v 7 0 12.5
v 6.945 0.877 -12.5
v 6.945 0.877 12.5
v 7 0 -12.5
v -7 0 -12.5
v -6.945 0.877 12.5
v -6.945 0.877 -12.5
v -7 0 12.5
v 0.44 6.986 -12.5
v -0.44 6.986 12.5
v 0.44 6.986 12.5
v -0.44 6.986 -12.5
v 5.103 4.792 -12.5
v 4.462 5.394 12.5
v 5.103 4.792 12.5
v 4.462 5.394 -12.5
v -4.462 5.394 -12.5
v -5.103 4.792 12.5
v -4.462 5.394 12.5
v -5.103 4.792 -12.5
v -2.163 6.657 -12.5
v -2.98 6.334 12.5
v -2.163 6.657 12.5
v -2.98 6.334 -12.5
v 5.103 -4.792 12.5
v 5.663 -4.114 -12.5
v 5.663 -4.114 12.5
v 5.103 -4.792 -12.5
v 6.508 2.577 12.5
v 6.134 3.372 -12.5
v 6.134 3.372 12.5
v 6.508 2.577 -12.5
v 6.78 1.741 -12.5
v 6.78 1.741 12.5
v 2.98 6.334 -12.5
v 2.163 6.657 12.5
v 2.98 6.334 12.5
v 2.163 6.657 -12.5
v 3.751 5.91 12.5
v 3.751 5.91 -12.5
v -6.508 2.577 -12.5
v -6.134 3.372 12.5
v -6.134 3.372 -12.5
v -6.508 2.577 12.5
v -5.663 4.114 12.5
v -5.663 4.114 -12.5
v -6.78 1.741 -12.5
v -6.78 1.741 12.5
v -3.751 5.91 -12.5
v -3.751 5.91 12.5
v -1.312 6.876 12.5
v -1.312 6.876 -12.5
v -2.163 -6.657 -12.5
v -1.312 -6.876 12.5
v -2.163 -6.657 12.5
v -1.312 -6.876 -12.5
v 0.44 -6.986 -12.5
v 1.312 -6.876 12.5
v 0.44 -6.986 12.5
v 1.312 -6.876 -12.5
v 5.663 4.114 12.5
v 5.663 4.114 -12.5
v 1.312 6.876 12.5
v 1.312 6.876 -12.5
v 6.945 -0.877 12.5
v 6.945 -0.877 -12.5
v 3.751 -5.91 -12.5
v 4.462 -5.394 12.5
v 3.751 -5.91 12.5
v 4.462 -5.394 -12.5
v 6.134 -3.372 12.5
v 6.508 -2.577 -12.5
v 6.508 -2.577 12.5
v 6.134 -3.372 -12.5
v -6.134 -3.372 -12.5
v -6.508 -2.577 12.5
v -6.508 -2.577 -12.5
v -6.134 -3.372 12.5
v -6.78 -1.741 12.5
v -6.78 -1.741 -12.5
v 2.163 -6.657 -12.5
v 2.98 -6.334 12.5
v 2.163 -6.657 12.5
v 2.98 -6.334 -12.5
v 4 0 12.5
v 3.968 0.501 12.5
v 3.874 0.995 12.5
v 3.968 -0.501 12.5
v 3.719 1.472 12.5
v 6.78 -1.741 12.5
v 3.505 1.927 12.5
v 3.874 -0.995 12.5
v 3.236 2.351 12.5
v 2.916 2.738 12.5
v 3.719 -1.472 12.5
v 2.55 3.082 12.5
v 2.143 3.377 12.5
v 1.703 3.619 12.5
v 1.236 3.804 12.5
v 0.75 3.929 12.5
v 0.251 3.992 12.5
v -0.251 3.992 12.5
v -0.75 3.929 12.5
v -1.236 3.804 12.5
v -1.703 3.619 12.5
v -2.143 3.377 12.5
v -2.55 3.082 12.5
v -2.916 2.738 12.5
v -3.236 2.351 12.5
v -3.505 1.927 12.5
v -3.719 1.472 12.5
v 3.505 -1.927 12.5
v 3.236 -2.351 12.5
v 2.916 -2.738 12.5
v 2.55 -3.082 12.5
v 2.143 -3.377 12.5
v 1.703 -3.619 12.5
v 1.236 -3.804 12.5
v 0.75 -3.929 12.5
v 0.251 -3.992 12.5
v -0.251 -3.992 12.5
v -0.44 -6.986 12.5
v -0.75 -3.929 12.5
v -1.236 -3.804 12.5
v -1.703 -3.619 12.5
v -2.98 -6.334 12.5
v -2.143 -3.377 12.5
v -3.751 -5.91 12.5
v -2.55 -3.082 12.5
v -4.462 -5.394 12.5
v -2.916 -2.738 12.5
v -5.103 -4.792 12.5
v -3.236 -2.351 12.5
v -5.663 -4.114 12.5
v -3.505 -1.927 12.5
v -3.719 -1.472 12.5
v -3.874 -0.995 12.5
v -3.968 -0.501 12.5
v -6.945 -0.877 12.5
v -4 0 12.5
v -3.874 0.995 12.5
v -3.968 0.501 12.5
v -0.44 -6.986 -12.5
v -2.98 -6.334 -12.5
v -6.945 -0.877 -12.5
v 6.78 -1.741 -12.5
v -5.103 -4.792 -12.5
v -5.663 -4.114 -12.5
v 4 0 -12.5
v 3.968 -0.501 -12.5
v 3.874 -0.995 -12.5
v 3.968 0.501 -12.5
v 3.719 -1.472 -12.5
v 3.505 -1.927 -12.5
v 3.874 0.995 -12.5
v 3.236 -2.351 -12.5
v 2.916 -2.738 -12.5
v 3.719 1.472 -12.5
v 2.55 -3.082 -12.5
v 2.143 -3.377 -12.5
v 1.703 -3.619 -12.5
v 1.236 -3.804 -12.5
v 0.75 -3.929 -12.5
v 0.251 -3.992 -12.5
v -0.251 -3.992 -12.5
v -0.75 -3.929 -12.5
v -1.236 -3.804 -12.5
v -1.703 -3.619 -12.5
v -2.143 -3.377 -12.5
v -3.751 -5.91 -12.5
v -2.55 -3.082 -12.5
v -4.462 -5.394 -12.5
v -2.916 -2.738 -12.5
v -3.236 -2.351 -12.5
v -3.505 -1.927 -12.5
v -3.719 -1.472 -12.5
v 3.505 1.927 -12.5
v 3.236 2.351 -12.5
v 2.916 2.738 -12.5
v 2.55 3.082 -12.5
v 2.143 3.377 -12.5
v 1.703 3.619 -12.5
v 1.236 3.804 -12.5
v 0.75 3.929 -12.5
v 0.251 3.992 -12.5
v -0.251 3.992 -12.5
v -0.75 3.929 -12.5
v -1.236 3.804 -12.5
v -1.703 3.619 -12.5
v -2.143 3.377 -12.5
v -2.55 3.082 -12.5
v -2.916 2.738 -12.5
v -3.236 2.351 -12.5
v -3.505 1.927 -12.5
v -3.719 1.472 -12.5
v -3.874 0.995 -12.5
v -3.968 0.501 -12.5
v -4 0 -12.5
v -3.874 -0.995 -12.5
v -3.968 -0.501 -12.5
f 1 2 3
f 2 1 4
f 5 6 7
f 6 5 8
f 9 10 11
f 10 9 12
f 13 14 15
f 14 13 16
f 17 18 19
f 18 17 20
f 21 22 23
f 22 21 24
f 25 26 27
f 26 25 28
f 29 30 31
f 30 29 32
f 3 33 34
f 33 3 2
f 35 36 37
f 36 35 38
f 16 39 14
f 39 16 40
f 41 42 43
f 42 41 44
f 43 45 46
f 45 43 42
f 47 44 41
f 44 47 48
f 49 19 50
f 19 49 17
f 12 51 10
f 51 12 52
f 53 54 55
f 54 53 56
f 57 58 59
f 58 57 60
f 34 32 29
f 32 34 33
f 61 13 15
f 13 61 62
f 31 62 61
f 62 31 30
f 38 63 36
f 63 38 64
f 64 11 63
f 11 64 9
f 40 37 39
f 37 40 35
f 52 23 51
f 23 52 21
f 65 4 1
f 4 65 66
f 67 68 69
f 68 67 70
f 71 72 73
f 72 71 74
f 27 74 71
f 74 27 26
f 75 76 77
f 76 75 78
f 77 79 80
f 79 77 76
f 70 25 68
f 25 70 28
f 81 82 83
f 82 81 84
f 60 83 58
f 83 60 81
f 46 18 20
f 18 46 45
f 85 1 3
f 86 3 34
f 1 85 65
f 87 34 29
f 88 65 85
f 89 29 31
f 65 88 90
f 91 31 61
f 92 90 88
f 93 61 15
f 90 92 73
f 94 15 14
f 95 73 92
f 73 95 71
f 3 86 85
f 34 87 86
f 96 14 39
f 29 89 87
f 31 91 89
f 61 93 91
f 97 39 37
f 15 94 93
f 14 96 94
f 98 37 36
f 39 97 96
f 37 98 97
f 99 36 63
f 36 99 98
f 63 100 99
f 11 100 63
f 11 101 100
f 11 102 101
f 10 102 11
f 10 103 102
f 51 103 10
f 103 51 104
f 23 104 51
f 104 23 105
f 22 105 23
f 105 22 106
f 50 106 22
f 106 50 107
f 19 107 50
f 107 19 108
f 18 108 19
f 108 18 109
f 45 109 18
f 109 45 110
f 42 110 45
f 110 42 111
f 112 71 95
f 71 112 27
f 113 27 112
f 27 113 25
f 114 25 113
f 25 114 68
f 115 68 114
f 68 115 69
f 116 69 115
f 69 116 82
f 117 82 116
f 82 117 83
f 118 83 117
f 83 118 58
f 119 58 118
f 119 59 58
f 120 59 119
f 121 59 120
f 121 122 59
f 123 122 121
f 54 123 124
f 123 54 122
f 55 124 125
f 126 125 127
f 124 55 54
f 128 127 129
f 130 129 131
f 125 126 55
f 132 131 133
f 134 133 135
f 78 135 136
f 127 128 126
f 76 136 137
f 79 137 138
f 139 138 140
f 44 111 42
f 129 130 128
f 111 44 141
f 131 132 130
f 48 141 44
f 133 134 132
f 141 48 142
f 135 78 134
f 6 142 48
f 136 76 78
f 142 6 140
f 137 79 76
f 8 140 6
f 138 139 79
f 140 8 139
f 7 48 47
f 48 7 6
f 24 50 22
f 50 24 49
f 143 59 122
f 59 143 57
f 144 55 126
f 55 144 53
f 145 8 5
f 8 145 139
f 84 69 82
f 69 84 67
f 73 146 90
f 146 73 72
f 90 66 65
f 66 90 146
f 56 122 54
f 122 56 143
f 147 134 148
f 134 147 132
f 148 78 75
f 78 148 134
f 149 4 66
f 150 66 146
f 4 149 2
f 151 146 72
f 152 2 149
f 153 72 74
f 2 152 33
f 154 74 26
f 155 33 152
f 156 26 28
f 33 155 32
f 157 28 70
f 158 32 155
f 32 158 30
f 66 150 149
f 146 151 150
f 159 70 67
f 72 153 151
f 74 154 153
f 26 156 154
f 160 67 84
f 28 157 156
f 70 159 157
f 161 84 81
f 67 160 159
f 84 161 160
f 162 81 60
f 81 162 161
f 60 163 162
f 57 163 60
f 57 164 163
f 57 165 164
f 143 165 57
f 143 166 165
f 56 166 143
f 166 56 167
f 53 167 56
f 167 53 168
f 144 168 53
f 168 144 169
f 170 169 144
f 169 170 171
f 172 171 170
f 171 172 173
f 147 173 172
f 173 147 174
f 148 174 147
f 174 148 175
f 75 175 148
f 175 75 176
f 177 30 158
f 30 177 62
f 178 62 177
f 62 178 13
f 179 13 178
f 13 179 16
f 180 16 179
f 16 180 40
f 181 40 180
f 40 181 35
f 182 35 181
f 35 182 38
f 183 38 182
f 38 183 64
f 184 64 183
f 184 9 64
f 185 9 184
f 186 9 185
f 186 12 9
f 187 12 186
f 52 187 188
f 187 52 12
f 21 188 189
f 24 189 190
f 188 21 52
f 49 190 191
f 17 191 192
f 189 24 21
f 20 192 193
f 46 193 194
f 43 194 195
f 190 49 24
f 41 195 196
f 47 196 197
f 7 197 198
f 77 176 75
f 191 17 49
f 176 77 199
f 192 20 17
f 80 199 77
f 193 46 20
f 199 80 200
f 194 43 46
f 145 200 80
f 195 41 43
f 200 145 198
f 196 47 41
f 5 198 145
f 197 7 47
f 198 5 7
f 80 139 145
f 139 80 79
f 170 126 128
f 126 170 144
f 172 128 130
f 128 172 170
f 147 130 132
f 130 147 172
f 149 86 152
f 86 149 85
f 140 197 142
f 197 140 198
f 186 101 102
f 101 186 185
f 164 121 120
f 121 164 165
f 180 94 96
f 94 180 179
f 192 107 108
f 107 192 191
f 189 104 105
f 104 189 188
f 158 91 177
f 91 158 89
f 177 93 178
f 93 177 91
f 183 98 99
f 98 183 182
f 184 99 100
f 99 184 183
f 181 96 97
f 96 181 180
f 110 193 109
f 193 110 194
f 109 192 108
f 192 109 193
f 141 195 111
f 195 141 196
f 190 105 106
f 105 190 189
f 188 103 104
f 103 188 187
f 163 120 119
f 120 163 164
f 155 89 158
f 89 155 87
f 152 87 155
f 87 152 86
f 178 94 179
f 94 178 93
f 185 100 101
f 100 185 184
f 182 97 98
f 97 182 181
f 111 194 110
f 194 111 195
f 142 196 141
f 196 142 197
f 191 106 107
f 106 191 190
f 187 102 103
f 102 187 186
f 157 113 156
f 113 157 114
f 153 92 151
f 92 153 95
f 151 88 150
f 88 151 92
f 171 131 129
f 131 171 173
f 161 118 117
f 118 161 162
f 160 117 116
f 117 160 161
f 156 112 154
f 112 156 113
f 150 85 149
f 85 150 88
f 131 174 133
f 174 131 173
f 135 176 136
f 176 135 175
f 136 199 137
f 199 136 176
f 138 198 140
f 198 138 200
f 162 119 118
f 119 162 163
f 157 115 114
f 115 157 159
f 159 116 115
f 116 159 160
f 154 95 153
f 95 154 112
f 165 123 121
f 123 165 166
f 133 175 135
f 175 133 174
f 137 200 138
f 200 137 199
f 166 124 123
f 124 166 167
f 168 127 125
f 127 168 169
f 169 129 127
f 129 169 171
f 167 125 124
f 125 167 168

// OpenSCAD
$fn = 50;


difference() {
	union() {
		translate(v = [0, 0, -12.5000000000]) {
			cylinder(h = 25, r = 7.0000000000);
		}
	}
	union() {
		translate(v = [0, 0, -100.0000000000]) {
			cylinder(h = 200, r = 4.0000000000);
		}
	}
}
